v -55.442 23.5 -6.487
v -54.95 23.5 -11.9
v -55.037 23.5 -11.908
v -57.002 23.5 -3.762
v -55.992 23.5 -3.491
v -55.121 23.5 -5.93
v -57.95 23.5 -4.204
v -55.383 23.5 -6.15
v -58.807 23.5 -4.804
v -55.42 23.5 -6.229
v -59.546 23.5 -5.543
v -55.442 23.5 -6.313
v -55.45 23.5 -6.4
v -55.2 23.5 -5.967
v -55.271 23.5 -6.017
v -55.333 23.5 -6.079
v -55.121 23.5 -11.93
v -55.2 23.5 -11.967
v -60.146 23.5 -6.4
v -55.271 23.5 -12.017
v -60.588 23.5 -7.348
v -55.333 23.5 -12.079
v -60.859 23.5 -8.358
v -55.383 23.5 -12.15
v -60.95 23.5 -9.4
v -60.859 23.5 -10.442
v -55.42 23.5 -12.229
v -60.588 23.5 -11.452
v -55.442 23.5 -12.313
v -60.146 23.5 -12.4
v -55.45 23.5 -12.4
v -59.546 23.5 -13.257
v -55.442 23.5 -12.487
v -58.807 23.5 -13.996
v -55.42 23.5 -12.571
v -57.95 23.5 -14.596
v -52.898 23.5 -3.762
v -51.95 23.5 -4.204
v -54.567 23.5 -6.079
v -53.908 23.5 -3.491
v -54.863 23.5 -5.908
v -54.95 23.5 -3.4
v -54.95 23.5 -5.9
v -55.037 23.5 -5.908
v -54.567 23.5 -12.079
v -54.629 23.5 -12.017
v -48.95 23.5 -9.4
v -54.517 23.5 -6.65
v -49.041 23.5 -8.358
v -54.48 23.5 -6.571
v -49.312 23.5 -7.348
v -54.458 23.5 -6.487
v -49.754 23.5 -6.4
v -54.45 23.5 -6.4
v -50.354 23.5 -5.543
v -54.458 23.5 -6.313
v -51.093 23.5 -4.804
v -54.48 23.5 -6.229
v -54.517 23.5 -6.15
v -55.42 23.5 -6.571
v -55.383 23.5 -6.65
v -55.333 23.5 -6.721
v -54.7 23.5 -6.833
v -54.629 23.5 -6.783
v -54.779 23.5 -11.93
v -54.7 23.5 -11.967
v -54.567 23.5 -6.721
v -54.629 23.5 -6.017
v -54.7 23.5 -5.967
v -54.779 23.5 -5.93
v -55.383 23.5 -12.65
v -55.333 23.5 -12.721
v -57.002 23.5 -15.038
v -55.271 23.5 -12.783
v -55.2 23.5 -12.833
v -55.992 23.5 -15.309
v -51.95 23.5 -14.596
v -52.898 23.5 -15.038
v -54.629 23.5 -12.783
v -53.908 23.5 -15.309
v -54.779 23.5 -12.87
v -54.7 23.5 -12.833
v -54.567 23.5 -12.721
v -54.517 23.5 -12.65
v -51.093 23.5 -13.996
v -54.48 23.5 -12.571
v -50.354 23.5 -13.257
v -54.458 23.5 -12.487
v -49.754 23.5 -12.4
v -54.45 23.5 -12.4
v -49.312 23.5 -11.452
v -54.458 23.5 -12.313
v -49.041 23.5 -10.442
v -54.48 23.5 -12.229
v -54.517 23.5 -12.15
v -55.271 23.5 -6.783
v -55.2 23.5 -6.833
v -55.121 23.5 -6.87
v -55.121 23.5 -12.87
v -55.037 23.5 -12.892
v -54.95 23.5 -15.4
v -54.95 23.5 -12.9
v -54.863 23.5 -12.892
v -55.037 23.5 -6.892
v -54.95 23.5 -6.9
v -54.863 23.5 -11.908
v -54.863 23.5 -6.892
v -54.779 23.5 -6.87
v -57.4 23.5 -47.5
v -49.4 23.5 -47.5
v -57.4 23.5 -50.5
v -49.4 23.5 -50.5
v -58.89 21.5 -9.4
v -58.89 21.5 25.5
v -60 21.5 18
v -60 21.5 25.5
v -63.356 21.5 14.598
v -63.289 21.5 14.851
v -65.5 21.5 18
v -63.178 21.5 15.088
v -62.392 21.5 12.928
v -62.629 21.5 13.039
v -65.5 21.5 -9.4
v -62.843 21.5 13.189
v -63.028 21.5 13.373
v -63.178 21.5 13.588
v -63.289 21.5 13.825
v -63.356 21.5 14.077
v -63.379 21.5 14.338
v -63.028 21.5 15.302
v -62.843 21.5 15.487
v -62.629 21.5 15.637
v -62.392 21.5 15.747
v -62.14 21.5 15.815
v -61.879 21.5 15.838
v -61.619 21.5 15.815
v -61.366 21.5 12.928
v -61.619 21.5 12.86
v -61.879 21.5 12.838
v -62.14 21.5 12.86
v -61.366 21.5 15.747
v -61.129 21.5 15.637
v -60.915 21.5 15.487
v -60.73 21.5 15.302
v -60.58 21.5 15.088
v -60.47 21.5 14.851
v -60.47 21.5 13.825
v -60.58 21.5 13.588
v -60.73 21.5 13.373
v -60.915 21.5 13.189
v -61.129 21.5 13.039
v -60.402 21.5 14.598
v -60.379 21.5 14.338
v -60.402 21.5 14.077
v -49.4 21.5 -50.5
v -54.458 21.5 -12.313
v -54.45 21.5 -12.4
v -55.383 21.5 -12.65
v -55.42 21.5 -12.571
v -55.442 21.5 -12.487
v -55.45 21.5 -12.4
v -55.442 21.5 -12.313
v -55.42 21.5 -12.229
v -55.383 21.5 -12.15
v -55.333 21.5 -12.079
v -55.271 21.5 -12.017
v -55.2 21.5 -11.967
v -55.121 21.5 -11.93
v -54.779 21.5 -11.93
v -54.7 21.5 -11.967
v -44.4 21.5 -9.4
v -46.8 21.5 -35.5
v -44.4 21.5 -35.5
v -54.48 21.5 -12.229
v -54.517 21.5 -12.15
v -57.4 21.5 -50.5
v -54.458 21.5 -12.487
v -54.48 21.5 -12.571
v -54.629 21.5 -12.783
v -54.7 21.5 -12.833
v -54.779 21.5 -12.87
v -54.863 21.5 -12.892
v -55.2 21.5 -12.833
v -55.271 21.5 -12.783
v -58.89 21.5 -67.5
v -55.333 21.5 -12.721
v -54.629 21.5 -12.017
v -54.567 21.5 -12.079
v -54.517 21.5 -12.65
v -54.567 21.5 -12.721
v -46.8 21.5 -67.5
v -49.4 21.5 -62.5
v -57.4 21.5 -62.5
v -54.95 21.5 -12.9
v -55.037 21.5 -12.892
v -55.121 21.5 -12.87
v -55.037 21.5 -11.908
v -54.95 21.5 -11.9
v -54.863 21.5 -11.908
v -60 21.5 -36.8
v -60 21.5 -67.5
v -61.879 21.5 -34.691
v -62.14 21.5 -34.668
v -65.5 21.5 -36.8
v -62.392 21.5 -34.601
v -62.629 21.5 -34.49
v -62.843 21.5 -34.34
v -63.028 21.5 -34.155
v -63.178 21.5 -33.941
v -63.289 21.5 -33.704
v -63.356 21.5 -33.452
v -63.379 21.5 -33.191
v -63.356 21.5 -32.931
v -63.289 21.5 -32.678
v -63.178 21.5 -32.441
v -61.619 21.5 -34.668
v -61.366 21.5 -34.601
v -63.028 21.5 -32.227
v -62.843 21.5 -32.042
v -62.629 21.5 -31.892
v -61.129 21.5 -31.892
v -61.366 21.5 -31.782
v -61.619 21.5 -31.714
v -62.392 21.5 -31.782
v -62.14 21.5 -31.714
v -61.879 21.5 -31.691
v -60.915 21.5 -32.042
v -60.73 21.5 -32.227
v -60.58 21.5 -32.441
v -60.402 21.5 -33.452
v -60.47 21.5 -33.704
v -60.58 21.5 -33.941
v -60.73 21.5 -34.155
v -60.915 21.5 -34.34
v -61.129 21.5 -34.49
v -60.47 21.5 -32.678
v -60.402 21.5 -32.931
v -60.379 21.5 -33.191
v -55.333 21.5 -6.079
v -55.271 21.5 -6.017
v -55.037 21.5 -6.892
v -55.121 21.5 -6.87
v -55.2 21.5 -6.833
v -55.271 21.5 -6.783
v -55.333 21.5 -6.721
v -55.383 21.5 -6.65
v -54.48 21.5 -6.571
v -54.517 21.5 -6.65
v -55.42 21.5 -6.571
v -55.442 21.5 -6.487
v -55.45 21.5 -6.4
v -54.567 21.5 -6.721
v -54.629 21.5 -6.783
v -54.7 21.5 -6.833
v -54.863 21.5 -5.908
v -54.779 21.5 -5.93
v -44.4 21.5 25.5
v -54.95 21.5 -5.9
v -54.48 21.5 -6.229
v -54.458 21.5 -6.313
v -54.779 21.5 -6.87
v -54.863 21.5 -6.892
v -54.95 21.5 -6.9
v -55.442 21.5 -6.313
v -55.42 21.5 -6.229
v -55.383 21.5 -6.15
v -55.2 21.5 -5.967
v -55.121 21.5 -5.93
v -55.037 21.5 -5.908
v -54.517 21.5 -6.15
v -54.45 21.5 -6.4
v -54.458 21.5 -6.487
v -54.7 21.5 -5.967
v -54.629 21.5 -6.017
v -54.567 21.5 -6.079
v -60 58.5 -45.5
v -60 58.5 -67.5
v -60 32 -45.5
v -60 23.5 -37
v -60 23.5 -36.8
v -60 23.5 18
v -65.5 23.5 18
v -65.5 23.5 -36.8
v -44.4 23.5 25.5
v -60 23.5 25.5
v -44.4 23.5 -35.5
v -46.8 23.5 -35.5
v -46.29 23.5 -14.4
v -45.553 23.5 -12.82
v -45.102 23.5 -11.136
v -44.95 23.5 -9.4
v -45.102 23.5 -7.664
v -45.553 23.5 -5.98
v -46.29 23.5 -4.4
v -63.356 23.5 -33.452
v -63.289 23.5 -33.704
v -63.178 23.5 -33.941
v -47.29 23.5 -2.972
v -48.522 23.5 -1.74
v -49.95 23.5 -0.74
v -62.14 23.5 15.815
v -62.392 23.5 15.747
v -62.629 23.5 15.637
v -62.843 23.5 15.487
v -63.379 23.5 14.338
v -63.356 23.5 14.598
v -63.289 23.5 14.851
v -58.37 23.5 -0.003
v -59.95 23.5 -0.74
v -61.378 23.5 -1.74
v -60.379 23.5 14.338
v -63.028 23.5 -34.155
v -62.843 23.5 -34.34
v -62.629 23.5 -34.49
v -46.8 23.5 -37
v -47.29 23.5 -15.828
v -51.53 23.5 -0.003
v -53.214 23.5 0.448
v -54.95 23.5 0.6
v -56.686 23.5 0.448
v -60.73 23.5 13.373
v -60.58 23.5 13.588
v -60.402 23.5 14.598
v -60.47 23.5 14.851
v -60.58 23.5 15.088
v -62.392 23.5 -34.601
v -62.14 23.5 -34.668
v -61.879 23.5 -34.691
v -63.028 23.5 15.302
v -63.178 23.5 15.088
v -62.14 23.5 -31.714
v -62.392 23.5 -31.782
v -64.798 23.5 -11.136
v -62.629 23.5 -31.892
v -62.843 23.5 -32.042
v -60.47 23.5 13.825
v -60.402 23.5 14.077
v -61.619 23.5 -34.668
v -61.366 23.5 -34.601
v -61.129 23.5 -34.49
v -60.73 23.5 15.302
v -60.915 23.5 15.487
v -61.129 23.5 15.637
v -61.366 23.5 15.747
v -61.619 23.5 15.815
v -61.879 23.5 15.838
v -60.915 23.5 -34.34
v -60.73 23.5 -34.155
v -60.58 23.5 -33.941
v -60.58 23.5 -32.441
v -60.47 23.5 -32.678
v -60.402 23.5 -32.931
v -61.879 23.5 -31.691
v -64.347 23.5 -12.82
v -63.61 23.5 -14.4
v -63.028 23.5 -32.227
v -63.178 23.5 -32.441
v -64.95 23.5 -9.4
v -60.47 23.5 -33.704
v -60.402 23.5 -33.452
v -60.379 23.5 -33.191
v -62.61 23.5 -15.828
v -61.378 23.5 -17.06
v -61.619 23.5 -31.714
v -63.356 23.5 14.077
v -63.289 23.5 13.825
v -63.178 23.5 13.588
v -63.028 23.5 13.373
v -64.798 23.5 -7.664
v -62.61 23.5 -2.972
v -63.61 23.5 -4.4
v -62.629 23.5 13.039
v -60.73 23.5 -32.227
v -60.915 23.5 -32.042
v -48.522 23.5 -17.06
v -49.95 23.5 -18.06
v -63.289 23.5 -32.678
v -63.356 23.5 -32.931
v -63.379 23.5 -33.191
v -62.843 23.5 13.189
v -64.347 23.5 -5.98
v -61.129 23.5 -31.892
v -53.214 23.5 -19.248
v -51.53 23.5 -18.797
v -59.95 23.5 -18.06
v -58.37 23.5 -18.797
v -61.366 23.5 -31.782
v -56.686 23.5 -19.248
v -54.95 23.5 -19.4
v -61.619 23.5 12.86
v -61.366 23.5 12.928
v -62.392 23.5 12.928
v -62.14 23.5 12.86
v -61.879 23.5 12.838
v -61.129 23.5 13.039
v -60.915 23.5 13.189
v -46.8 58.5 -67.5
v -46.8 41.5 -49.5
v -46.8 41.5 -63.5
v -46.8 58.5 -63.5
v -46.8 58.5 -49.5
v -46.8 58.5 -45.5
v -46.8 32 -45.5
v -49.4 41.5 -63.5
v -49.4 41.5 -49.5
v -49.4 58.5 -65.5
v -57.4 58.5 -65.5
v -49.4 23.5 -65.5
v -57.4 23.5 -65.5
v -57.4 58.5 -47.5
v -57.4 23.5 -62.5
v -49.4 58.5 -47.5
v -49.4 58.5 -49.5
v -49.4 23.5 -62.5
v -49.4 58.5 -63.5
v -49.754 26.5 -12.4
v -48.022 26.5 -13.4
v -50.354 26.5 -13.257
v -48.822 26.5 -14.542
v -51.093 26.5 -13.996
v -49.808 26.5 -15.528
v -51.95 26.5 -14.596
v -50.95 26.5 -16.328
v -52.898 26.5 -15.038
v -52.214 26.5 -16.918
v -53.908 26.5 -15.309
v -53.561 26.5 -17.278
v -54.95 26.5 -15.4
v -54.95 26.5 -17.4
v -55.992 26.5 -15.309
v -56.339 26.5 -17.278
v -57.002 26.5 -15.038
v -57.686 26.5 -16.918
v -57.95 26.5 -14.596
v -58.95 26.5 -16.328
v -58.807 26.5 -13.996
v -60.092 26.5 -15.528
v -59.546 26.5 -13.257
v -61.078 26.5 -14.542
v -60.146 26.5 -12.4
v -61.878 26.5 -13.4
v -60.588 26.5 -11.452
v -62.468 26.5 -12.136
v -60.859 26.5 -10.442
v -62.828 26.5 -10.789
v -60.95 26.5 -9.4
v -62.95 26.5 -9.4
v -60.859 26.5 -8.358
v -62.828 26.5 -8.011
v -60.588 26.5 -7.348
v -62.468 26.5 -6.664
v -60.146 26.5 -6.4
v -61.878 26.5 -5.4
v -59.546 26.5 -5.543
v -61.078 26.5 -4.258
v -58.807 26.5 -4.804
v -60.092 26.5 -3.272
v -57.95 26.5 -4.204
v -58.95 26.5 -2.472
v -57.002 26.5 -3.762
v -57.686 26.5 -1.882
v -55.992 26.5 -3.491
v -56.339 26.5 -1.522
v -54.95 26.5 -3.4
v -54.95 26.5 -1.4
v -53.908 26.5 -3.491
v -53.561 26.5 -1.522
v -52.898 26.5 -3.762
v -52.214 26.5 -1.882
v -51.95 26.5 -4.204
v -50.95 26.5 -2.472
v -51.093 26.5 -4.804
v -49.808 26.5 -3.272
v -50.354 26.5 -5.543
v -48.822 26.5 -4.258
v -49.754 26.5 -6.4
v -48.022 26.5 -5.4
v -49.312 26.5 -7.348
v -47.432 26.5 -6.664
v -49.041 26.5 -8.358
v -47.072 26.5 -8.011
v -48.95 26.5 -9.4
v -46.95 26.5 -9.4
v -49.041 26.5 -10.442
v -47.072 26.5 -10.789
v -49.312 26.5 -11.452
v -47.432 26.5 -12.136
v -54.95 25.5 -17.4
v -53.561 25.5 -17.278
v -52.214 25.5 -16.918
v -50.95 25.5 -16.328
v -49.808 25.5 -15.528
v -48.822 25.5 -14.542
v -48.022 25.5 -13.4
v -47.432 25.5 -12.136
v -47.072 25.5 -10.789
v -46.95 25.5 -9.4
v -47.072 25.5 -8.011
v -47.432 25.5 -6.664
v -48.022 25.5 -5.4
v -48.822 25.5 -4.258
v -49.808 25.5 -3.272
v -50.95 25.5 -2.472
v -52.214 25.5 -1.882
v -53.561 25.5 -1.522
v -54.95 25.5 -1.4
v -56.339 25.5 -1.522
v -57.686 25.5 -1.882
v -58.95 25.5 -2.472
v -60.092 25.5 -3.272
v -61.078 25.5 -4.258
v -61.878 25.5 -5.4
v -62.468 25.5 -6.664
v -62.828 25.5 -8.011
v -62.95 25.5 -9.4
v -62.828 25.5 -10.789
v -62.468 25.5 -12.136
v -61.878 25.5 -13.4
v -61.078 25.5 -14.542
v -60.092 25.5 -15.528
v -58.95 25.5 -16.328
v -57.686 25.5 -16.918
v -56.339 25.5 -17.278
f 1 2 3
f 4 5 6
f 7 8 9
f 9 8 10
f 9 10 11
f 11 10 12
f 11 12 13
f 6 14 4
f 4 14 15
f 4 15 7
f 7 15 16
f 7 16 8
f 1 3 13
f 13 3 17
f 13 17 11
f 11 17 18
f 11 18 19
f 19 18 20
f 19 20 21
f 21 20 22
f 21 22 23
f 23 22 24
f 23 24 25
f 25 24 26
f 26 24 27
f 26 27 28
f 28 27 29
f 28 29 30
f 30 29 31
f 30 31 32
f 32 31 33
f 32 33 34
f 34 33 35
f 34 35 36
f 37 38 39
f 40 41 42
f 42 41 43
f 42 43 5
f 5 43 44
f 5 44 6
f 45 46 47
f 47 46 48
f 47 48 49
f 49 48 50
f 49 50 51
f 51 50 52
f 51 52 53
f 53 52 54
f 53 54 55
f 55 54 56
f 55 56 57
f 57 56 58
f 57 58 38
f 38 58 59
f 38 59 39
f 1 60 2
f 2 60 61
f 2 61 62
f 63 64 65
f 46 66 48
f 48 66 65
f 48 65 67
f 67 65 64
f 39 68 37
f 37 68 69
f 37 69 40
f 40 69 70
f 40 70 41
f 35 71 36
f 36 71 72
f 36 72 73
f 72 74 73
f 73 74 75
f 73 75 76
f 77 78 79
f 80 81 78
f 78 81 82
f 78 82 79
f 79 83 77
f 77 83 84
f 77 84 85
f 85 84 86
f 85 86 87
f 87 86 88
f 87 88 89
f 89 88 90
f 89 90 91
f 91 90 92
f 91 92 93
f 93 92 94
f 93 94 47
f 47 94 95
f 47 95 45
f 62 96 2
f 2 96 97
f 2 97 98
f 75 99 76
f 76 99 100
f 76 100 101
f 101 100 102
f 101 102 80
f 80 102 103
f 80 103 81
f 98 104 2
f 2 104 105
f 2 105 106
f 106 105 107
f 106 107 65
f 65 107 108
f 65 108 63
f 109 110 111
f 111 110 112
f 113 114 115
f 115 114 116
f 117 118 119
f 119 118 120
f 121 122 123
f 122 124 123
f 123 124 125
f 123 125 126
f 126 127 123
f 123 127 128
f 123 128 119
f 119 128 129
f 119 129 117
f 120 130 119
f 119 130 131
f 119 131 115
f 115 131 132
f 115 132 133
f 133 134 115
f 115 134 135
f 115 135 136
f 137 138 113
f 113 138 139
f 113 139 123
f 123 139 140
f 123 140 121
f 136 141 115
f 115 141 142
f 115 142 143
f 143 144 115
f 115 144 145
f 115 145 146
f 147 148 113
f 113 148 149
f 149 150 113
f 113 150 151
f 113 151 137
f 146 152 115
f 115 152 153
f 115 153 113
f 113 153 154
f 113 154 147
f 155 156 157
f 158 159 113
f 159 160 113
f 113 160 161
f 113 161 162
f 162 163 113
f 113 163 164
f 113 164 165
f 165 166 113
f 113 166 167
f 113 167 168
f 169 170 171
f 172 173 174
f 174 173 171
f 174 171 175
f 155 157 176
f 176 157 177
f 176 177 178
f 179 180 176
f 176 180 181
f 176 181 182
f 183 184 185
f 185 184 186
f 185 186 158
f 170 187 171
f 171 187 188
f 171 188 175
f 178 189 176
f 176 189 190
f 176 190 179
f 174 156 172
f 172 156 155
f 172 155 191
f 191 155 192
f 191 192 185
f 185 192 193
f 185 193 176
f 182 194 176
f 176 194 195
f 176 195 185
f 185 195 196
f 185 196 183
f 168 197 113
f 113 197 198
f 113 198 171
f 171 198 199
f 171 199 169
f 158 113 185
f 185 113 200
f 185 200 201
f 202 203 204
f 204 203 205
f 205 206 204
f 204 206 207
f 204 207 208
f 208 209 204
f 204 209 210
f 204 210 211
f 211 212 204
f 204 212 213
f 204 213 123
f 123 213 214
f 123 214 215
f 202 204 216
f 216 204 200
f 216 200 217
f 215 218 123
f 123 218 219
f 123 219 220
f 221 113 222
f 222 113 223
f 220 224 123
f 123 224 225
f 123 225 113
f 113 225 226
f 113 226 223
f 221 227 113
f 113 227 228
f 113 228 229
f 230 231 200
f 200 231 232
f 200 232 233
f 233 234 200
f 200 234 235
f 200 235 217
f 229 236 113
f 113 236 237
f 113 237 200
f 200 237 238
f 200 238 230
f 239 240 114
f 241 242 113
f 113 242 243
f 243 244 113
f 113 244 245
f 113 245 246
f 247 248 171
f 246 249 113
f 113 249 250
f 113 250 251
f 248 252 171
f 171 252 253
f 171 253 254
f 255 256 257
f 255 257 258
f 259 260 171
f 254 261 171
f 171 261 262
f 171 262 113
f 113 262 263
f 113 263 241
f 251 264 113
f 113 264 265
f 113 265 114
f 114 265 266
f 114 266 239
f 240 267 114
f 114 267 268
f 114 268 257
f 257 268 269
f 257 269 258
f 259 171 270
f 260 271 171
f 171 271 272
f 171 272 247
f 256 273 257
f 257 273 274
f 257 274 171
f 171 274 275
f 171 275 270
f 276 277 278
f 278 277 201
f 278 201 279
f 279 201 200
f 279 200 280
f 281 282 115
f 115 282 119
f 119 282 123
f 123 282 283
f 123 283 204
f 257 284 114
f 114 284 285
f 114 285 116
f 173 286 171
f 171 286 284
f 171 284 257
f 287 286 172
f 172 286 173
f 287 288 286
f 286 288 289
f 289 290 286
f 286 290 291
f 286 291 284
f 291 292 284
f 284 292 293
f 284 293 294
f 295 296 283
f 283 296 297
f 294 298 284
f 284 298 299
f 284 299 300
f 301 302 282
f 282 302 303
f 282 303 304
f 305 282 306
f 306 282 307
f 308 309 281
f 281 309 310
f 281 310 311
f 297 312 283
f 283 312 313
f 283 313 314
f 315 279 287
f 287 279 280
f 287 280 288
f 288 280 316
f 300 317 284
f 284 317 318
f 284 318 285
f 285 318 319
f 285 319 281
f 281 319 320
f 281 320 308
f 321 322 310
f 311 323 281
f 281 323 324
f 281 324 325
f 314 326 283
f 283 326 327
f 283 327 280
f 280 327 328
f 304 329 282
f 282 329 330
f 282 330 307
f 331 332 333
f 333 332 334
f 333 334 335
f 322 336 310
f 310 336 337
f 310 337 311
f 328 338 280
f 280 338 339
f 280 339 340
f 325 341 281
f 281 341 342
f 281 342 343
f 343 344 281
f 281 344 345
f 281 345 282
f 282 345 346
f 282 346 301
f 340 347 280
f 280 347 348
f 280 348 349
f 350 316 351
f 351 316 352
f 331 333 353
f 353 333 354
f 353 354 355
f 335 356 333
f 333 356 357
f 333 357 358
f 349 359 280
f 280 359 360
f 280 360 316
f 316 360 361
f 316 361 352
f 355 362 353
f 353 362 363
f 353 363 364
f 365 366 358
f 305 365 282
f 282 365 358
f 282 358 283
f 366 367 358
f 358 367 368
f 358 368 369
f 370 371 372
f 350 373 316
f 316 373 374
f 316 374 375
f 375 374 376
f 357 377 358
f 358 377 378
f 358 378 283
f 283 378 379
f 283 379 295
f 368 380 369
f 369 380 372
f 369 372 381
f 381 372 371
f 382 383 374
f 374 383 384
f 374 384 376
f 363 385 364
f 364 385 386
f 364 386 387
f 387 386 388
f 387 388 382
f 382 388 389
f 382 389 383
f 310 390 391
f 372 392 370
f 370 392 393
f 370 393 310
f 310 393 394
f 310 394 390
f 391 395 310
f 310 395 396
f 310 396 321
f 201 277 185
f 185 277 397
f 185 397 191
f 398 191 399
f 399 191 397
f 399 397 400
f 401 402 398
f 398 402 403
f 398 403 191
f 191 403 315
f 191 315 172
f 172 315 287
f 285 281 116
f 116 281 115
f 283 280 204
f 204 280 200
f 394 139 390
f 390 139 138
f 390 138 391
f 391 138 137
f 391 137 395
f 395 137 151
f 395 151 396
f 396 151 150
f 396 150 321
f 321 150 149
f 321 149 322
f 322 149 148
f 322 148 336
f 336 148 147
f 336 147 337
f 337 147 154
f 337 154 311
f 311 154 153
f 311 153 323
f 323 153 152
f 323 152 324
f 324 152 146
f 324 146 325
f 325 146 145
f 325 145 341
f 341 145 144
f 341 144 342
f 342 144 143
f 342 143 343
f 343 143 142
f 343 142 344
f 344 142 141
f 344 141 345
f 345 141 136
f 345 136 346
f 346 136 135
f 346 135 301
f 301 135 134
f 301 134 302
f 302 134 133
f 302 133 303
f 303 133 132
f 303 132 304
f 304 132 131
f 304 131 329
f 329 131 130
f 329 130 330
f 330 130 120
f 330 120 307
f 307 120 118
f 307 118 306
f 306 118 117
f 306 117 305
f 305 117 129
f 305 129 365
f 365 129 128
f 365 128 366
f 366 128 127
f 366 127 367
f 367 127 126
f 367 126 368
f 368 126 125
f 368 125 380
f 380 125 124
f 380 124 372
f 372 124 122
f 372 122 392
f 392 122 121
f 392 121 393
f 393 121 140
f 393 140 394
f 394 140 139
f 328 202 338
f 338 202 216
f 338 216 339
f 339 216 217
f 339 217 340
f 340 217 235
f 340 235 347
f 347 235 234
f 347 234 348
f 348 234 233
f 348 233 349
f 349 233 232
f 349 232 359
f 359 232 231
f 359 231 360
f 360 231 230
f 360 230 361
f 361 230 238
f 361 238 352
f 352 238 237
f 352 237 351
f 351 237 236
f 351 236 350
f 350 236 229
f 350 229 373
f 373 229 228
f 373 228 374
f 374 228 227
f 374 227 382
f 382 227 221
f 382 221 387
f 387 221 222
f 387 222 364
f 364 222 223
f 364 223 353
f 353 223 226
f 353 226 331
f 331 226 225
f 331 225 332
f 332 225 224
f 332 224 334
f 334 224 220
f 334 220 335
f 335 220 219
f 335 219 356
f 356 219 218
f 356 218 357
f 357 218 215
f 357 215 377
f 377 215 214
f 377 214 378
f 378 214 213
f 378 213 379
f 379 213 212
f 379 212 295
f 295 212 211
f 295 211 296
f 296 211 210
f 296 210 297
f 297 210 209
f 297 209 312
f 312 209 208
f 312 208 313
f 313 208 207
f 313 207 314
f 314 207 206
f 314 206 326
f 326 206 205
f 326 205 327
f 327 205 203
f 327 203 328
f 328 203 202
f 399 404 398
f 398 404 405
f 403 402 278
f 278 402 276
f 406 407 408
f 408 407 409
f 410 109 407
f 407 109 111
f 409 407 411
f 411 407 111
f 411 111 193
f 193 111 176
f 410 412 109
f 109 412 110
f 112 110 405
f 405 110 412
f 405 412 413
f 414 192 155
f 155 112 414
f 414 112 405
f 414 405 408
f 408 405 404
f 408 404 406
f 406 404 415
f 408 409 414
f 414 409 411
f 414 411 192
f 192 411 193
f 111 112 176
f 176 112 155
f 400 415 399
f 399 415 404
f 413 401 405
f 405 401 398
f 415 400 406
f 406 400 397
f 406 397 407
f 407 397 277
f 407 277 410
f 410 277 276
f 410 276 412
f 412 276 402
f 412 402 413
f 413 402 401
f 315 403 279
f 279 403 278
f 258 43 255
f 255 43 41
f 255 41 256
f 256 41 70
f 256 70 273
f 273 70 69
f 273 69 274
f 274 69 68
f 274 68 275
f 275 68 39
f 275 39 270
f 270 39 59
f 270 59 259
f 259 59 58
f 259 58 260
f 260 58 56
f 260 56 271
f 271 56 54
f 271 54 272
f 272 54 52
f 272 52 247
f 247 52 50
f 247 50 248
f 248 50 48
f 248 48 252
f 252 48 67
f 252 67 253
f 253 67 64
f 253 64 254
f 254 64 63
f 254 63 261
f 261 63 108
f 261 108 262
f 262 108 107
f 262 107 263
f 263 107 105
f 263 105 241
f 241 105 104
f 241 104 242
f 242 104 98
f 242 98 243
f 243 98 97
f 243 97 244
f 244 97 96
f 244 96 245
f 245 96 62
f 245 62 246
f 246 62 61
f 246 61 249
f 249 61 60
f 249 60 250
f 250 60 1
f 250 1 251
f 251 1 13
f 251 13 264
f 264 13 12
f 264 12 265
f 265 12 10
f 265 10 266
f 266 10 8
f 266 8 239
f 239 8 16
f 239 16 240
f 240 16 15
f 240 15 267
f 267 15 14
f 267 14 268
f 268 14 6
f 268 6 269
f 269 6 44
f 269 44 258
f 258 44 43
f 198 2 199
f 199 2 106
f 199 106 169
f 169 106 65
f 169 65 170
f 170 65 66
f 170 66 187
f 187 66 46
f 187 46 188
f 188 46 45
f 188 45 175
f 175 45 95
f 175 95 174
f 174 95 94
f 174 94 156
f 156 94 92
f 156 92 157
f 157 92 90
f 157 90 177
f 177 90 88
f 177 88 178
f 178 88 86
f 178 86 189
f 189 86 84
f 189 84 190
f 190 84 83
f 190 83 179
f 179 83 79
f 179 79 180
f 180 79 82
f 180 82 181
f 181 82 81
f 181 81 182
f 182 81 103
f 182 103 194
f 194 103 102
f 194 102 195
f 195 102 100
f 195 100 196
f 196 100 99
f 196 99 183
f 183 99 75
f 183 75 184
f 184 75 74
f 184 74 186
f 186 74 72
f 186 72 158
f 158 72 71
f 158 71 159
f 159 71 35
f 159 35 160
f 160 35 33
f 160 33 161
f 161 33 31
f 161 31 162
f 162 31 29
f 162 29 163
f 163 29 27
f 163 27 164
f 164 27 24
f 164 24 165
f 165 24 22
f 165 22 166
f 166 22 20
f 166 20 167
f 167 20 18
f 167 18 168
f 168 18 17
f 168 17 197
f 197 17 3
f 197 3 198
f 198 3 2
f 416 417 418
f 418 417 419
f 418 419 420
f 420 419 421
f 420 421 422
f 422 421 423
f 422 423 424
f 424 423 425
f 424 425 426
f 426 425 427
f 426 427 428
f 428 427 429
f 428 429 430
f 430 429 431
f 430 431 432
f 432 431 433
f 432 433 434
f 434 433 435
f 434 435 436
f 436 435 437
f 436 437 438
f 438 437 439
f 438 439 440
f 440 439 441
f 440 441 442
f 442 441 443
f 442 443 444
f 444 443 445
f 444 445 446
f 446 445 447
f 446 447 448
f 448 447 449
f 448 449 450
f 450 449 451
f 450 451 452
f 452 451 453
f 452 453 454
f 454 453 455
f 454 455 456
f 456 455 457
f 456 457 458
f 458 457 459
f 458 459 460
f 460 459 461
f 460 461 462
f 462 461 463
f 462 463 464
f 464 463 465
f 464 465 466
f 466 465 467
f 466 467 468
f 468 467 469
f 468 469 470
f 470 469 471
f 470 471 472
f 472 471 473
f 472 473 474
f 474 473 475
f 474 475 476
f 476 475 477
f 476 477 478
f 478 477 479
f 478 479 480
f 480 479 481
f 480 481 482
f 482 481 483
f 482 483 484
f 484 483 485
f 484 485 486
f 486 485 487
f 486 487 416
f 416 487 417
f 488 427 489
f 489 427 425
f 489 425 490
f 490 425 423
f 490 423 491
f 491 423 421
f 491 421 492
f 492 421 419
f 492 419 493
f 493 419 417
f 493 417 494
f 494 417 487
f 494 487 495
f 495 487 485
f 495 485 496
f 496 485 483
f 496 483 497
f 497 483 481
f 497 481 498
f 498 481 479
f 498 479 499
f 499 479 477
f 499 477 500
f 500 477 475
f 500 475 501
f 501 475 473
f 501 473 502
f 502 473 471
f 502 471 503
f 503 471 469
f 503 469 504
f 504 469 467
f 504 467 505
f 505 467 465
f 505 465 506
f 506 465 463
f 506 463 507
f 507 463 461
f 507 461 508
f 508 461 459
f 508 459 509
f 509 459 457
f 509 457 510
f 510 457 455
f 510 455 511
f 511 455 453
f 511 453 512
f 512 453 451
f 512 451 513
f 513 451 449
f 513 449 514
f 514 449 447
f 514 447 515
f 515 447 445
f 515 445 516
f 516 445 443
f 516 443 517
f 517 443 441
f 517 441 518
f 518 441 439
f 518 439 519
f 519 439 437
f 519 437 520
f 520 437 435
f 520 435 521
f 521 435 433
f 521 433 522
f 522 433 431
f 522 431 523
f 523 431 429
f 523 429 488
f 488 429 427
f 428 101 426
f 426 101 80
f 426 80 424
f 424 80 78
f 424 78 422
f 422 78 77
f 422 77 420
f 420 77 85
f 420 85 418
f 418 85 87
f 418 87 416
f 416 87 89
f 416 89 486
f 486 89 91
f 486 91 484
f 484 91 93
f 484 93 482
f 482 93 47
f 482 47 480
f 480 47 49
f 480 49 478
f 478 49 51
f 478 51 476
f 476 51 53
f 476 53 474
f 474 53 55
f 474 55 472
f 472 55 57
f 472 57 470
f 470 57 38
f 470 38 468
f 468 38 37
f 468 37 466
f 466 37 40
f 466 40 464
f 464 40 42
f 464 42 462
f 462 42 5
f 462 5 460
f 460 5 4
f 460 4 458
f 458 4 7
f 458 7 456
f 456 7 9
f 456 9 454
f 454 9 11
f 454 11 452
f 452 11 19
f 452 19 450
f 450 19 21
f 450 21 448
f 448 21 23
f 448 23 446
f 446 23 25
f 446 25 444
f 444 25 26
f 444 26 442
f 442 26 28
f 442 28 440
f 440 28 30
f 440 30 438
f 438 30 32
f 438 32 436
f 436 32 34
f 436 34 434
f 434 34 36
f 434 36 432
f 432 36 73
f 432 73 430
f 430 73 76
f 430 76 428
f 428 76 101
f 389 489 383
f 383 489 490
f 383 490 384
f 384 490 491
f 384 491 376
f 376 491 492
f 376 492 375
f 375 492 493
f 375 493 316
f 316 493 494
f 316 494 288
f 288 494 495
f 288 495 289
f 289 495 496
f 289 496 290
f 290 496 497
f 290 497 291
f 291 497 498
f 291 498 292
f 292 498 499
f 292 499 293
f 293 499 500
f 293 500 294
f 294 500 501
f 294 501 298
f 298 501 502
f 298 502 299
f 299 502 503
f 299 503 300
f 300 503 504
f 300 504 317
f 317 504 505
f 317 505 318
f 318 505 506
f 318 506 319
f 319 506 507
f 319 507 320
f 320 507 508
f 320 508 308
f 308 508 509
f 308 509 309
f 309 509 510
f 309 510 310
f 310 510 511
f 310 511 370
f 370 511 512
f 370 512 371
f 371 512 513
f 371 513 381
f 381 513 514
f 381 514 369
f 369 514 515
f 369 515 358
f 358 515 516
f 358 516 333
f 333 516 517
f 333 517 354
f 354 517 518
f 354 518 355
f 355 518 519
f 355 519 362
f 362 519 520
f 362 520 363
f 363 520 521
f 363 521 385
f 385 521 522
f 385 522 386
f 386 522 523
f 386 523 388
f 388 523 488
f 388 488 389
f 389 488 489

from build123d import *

# Parameters (mm, degrees)
BOSS_EXTRUDE1_DEPTH  = 1.5
SKETCH2_W            = 4.8
SKETCH2_H            = 18
BOSS_EXTRUDE2_DEPTH  = 20
SKETCH3_R            = 1.5
CUT_EXTRUDE1_DEPTH   = 20
SKETCH4_R            = 3
SKETCH4_R_2          = 1.5
SKETCH4_W            = 4.828517764
SKETCH4_H            = 3.2
SKETCH4_W_2          = 5.829541735
SKETCH4_H_2          = 5.702554953
SKETCH4_W_3          = 4.58984945
BOSS_EXTRUDE3_DEPTH  = 3.8
SKETCH5_W            = 7.960049614
SKETCH5_H            = 4.589179968
SKETCH5_R            = 1.5
SKETCH5_W_2          = 8.506770289
SKETCH5_H_2          = 5.091999219
SKETCH5_W_3          = 7.172313144
SKETCH5_H_3          = 12.5
SKETCH5_H_4          = 13
BOSS_EXTRUDE4_DEPTH  = 4.25
SKETCH6_W            = 6.917388718
SKETCH6_H            = 7.693263261
SKETCH6_R            = 1.5
SKETCH6_W_2          = 6.017640473
SKETCH6_H_2          = 7.169329529
BOSS_EXTRUDE5_DEPTH  = 12.5
SKETCH7_R            = 1.5
BOSS_EXTRUDE7_DEPTH  = 2
INTERSECT1_DEPTH     = 21.5
SKETCH8_W            = 13.2
SKETCH8_H            = 22
BOSS_EXTRUDE8_DEPTH  = 18
SKETCH9_W            = 8
SKETCH9_H            = 12
CUT_EXTRUDE2_DEPTH   = 26
BOSS_EXTRUDE9_DEPTH  = 17
CHAMFER1_SIZE        = 8.5
SKETCH11_R           = 0.5
CUT_EXTRUDE3_DEPTH   = 17
SKETCH12_R           = 8
SKETCH12_R_2         = 6
BOSS_EXTRUDE10_DEPTH = 3
CHAMFER2_SIZE        = 2


# Read off the part's stored shape, not the designer's step: Intersect1
with BuildPart() as part:
    # Sketch1 → Boss-Extrude1 (new body)
    with BuildSketch(Plane(origin=(0, 0, 0), x_dir=(1, 0, 0), z_dir=(0, 1, 0))):
        Polygon((-60, -67.5), (-60, -72.5), (-52, -72.5), (-52, -67.5), (52, -67.5), (52, -72.5), (60, -72.5), (60, -67.5), (60, 67.5), (-60, 67.5), (-60, 36.8), (-65.5, 36.8), (-65.5, 29.3), (-60, 29.3), (-60, 16.8), (-65.5, 16.8), (-65.5, 7.8), (-65.5, -1.2), (-60, -1.2), (-60, -10.5), (-65.5, -10.5), (-65.5, -18), (-60, -18), align=None)
    extrude(amount=BOSS_EXTRUDE1_DEPTH)

    # Sketch2 → Boss-Extrude2 (add)
    with BuildSketch(Plane(origin=(0, 1.5, 0), x_dir=(1, 0, 0), z_dir=(0, 1, 0))):
        Polygon((-58, 62.8), (-58, 29.3), (-60, 29.3), (-65.5, 29.3), (-65.5, 36.8), (-60, 36.8), (-60, 67.5), (-55.3, 67.5), (-55.3, 65.5), align=None)
        with BuildLine():
            Line((-58, -65.5), (58, -65.5))
            Line((58, -65.5), (58, -25.5))
            Line((58, -25.5), (29.8, -25.5))
            Line((29.8, -25.5), (29.8, -18))
            Line((29.8, -18), (58, -18))
            Line((58, -18), (58, 38.5))
            ThreePointArc((58, 38.5), (57.414213562, 39.914213562), (56, 40.5))
            Line((56, 40.5), (51.8, 40.5))
            ThreePointArc((51.8, 40.5), (50.385786438, 41.085786438), (49.8, 42.5))
            Line((49.8, 42.5), (49.8, 48.75))
            Line((49.8, 48.75), (51.3, 48.75))
            Line((51.3, 48.75), (51.3, 47.25))
            Line((51.3, 47.25), (58, 47.25))
            Line((58, 47.25), (58, 51.25))
            Line((58, 51.25), (60, 51.25))
            Line((60, 51.25), (60, -72.5))
            Line((60, -72.5), (52, -72.5))
            Line((52, -72.5), (52, -67.5))
            Line((52, -67.5), (-52, -67.5))
            Line((-52, -67.5), (-52, -72.5))
            Line((-52, -72.5), (-60, -72.5))
            Line((-60, -72.5), (-60, -52.5))
            Line((-60, -52.5), (-58, -52.5))
            Line((-58, -52.5), (-58, -65.5))
        make_face()
        Polygon((-60, 16.8), (-58, 16.8), (-58, -1.2), (-60, -1.2), (-65.5, -1.2), (-65.5, 16.8), align=None)
        Polygon((-60, -10.5), (-58, -10.5), (-58, -38), (-60, -38), (-60, -18), (-65.5, -18), (-65.5, -10.5), align=None)
        with BuildLine():
            Line((-48.8, 67.5), (-48.8, 65.5))
            Line((-48.8, 65.5), (-46.8, 62.8))
            Line((-46.8, 62.8), (-46.8, 58.5))
            Line((-46.8, 58.5), (-44.8, 58.5))
            Line((-44.8, 58.5), (-37.8, 64.5))
            Line((-37.8, 64.5), (38.8, 64.5))
            Line((38.8, 64.5), (44.8, 58.5))
            Line((44.8, 58.5), (44.8, 46.5))
            Line((44.8, 46.5), (41.3, 46.5))
            Line((41.3, 46.5), (41.3, 42.5))
            Line((41.3, 42.5), (38.85, 42.5))
            Line((38.85, 42.5), (38.85, 40.5))
            Line((38.85, 40.5), (44.8, 40.5))
            ThreePointArc((44.8, 40.5), (46.214213562, 41.085786438), (46.8, 42.5))
            Line((46.8, 42.5), (46.8, 46.5))
            Line((46.8, 46.5), (46.8, 57.25))
            Line((46.8, 57.25), (51.3, 57.25))
            Line((51.3, 57.25), (51.3, 58.75))
            Line((51.3, 58.75), (58, 58.75))
            Line((58, 58.75), (58, 54.75))
            Line((58, 54.75), (60, 54.75))
            Line((60, 54.75), (60, 67.5))
            Line((60, 67.5), (-48.8, 67.5))
        make_face()
        Polygon((-46.8, 46.5), (-39.5, 46.5), (-39.5, 42.5), (-37.05, 42.5), (-37.05, 40.5), (-46.8, 40.5), align=None)
        Polygon((-33.55, 42.5), (-33.55, 40.5), (-18.65, 40.5), (-18.65, 42.5), (-21.1, 42.5), (-21.1, 46.5), (-31.1, 46.5), (-31.1, 42.5), align=None)
        Polygon((-15.55, 40.5), (-0.65, 40.5), (-0.65, 42.5), (-3.1, 42.5), (-3.1, 46.5), (-13.1, 46.5), (-13.1, 42.5), (-15.55, 42.5), align=None)
        Polygon((2.45, 40.5), (17.35, 40.5), (17.35, 42.5), (14.9, 42.5), (14.9, 46.5), (4.9, 46.5), (4.9, 42.5), (2.45, 42.5), align=None)
        Polygon((20.45, 40.5), (35.35, 40.5), (35.35, 42.5), (32.9, 42.5), (32.9, 46.5), (22.9, 46.5), (22.9, 42.5), (20.45, 42.5), align=None)
        Polygon((-46.8, 35.5), (-49.2, 35.5), (-49.2, 29.3), (-44.4, 29.3), (-44.4, 35.5), align=None)
        with Locations((-46.8, 7.8)):
            Rectangle(SKETCH2_W, SKETCH2_H)
        Polygon((-49.2, -10.5), (-44.4, -10.5), (-44.4, -18), (-16.9, -18), (-16.9, -25.5), (-46.4, -25.5), (-46.4, -19.9), (-49.2, -14), align=None)
    extrude(amount=BOSS_EXTRUDE2_DEPTH)

    # Sketch3 → Cut-Extrude1 (cut)
    with BuildSketch(Plane(origin=(0, 21.5, 0), x_dir=(1, 0, 0), z_dir=(0, 1, 0))):
        with Locations(Location((52.774715074, 63.354517547, 0), (0, 0, 270))):
            Circle(SKETCH3_R)
        with Locations(Location((-43.84271688, 64.854517547, 0), (0, 0, 270))):
            Circle(SKETCH3_R)
        with Locations(Location((-61.879270776, 33.191143968, 0), (0, 0, 270))):
            Circle(SKETCH3_R)
        with Locations(Location((-61.879270776, -14.337618299, 0), (0, 0, 270))):
            Circle(SKETCH3_R)
        with Locations(Location((54.274715074, 43.945098524, 0), (0, 0, 270))):
            Circle(SKETCH3_R)
        with Locations(Location((-21.029637868, -21.862387391, 0), (0, 0, 270))):
            Circle(SKETCH3_R)
        with Locations(Location((34.3, -21.75, 0), (0, 0, 270))):
            Circle(SKETCH3_R)
        with Locations(Location((-56, -69, 0), (0, 0, 270))):
            Circle(SKETCH3_R)
        with Locations(Location((56, -69, 0), (0, 0, 270))):
            Circle(SKETCH3_R)
    extrude(amount=-CUT_EXTRUDE1_DEPTH, mode=Mode.SUBTRACT)

    # Sketch4 → Boss-Extrude3 (add)
    # profile 1 of 5: a face of its own
    with BuildSketch(Plane(origin=(0, 1.5, 0), x_dir=(1, 0, 0), z_dir=(0, 1, 0))):
        with Locations(Location((21.544764921, -8.320497528, 0), (0, 0, 90))):
            Circle(SKETCH4_R)
        with Locations(Location((21.544764921, -8.320497528, 0), (0, 0, 90))):
            Circle(SKETCH4_R_2, mode=Mode.SUBTRACT)
    # profile 2 of 5: a face of its own
    with BuildSketch(Plane(origin=(0, 1.5, 0), x_dir=(1, 0, 0), z_dir=(0, 1, 0))):
        with Locations(Location((21.544764921, 19.479502472, 0), (0, 0, 90))):
            Circle(SKETCH4_R)
        with Locations(Location((21.544764921, 19.479502472, 0), (0, 0, 90))):
            Circle(SKETCH4_R_2, mode=Mode.SUBTRACT)
    # profile 3 of 5: a face of its own
    with BuildSketch(Plane(origin=(0, 1.5, 0), x_dir=(1, 0, 0), z_dir=(0, 1, 0))):
        with Locations((-29.2, 33.9)):
            Rectangle(SKETCH4_W, SKETCH4_H)
        with Locations(Location((-29.2, 33.9, 0), (0, 0, 90))):
            Circle(SKETCH4_R_2, mode=Mode.SUBTRACT)
    # profile 4 of 5: a face of its own
    with BuildSketch(Plane(origin=(0, 1.5, 0), x_dir=(1, 0, 0), z_dir=(0, 1, 0))):
        with Locations((-30.25253813, -15.148722524)):
            Rectangle(SKETCH4_W_2, SKETCH4_H_2)
        with Locations(Location((-30.3, -14.4, 0), (0, 0, 90))):
            Circle(SKETCH4_R_2, mode=Mode.SUBTRACT)
    # profile 5 of 5: a face of its own
    with BuildSketch(Plane(origin=(0, 1.5, 0), x_dir=(1, 0, 0), z_dir=(0, 1, 0))):
        with Locations((51.718864017, -15.148722524)):
            Rectangle(SKETCH4_W_3, SKETCH4_H_2)
        with Locations(Location((51.8, -14.4, 0), (0, 0, 90))):
            Circle(SKETCH4_R_2, mode=Mode.SUBTRACT)
    extrude(amount=BOSS_EXTRUDE3_DEPTH)

    # Sketch5 → Boss-Extrude4 (add)
    # profile 1 of 4: a face of its own
    with BuildSketch(Plane(origin=(0, 1.5, 0), x_dir=(1, 0, 0), z_dir=(0, 1, 0))):
        with Locations((-54.019975193, -35.705410016)):
            Rectangle(SKETCH5_W, SKETCH5_H)
        with Locations(Location((-52.773553759, -35.8, 0), (0, 0, 270))):
            Circle(SKETCH5_R, mode=Mode.SUBTRACT)
    # profile 2 of 4: a face of its own
    with BuildSketch(Plane(origin=(0, 1.5, 0), x_dir=(1, 0, 0), z_dir=(0, 1, 0))):
        with Locations((-53.746614856, -55.04599961)):
            Rectangle(SKETCH5_W_2, SKETCH5_H_2)
        with Locations(Location((-52.773553759, -54.7, 0), (0, 0, 270))):
            Circle(SKETCH5_R, mode=Mode.SUBTRACT)
    # profile 3 of 4: a face of its own
    with BuildSketch(Plane(origin=(0, 1.5, 0), x_dir=(1, 0, 0), z_dir=(0, 1, 0))):
        with Locations((-27.40354529, -31.75)):
            Rectangle(SKETCH5_W_3, SKETCH5_H_3)
        with Locations(Location((-27.173553759, -35.8, 0), (0, 0, 270))):
            Circle(SKETCH5_R, mode=Mode.SUBTRACT)
    # profile 4 of 4: a face of its own
    with BuildSketch(Plane(origin=(0, 1.5, 0), x_dir=(1, 0, 0), z_dir=(0, 1, 0))):
        with Locations((-27.40354529, -59)):
            Rectangle(SKETCH5_W_3, SKETCH5_H_4)
        with Locations(Location((-27.173553759, -54.7, 0), (0, 0, 270))):
            Circle(SKETCH5_R, mode=Mode.SUBTRACT)
    extrude(amount=BOSS_EXTRUDE4_DEPTH)

    # Sketch6 → Boss-Extrude5 (add)
    # profile 1 of 4: a face of its own
    with BuildSketch(Plane(origin=(0, 1.5, 0), x_dir=(1, 0, 0), z_dir=(0, 1, 0))):
        with Locations((-20.358694359, -29.346631631)):
            Rectangle(SKETCH6_W, SKETCH6_H)
        with Locations(Location((-19.26, -30.5, 0), (0, 0, 270))):
            Circle(SKETCH6_R, mode=Mode.SUBTRACT)
    # profile 2 of 4: a face of its own
    with BuildSketch(Plane(origin=(0, 1.5, 0), x_dir=(1, 0, 0), z_dir=(0, 1, 0))):
        with Locations((54.991179763, -29.346631631)):
            Rectangle(SKETCH6_W_2, SKETCH6_H)
        with Locations(Location((55.14, -30.5, 0), (0, 0, 270))):
            Circle(SKETCH6_R, mode=Mode.SUBTRACT)
    # profile 3 of 4: a face of its own
    with BuildSketch(Plane(origin=(0, 1.5, 0), x_dir=(1, 0, 0), z_dir=(0, 1, 0))):
        with Locations((54.991179763, -61.915335236)):
            Rectangle(SKETCH6_W_2, SKETCH6_H_2)
        with Locations(Location((55.14, -61.1, 0), (0, 0, 270))):
            Circle(SKETCH6_R, mode=Mode.SUBTRACT)
    # profile 4 of 4: a face of its own
    with BuildSketch(Plane(origin=(0, 1.5, 0), x_dir=(1, 0, 0), z_dir=(0, 1, 0))):
        with Locations((-20.358694359, -61.915335236)):
            Rectangle(SKETCH6_W, SKETCH6_H_2)
        with Locations(Location((-19.26, -61.1, 0), (0, 0, 270))):
            Circle(SKETCH6_R, mode=Mode.SUBTRACT)
    extrude(amount=BOSS_EXTRUDE5_DEPTH)

    # Intersect1 outline → Intersect1 (cut)
    with BuildSketch(Plane(origin=(0, 0, 0), x_dir=(1, 0, 0), z_dir=(0, 1, 0))):
        Polygon((-60, -72.5), (-52, -72.5), (-52, -67.5), (52, -67.5), (52, -72.5), (60, -72.5), (60, 67.5), (-60, 67.5), (-60, 36.8), (-65.5, 36.8), (-65.5, 29.3), (-60, 29.3), (-60, 16.8), (-65.5, 16.8), (-65.5, -1.2), (-60, -1.2), (-60, -10.5), (-65.5, -10.5), (-65.5, -18), (-60, -18), align=None)
    extrude(amount=INTERSECT1_DEPTH, mode=Mode.SUBTRACT)


with BuildPart() as body_2:
    # Sketch7 → Boss-Extrude7 (new body)
    with BuildSketch(Plane(origin=(0, 21.5, 0), x_dir=(1, 0, 0), z_dir=(0, 1, 0))):
        Polygon((-60, 67.5), (-60, 36.8), (-65.5, 36.8), (-65.5, -18), (-60, -18), (-60, -25.5), (-46.4, -25.5), (-44.4, -25.5), (-44.4, -10.5), (-44.4, 35.5), (-46.8, 35.5), (-46.8, 62.8), (-46.8, 67.5), align=None)
        with Locations(Location((-61.879270776, -14.337618299, 0), (0, 0, 270))):
            Circle(SKETCH7_R, mode=Mode.SUBTRACT)
        with Locations(Location((-61.879270776, 33.191143968, 0), (0, 0, 270))):
            Circle(SKETCH7_R, mode=Mode.SUBTRACT)
    extrude(amount=BOSS_EXTRUDE7_DEPTH)

    # Sketch8 → Boss-Extrude8 (add)
    with BuildSketch(Plane(origin=(0, 23.5, 0), x_dir=(1, 0, 0), z_dir=(0, 1, 0))):
        with Locations((-53.4, 56.5)):
            Rectangle(SKETCH8_W, SKETCH8_H)
        Polygon((-53.4, 65.5), (-57.4, 65.5), (-57.4, 47.5), (-53.4, 47.5), (-49.4, 47.5), (-49.4, 65.5), align=None, mode=Mode.SUBTRACT)
    extrude(amount=BOSS_EXTRUDE8_DEPTH)

    # Sketch9 → Cut-Extrude2 (cut)
    with BuildSketch(Plane(origin=(0, 23.5, 0), x_dir=(1, 0, 0), z_dir=(0, 1, 0))):
        with Locations((-53.4, 56.5)):
            Rectangle(SKETCH9_W, SKETCH9_H)
    extrude(amount=-CUT_EXTRUDE2_DEPTH, mode=Mode.SUBTRACT)

    # Sketch10 → Boss-Extrude9 (add)
    with BuildSketch(Plane(origin=(0, 41.5, 0), x_dir=(1, 0, 0), z_dir=(0, 1, 0))):
        Polygon((-49.4, 63.5), (-46.8, 63.5), (-46.8, 67.5), (-60, 67.5), (-60, 45.5), (-46.8, 45.5), (-46.8, 49.5), (-49.4, 49.5), (-49.4, 47.5), (-57.4, 47.5), (-57.4, 65.5), (-49.4, 65.5), align=None)
    extrude(amount=BOSS_EXTRUDE9_DEPTH)

    # Chamfer1
    chamfer1_edges = [body_2.edges().sort_by_distance(p)[0] for p in [
        (-53.4, 23.5, -45.5),
    ]]
    chamfer(chamfer1_edges, length=CHAMFER1_SIZE)

    # Sketch11 → Cut-Extrude3 (cut)
    with BuildSketch(Plane(origin=(0, 23.5, 0), x_dir=(1, 0, 0), z_dir=(0, 1, 0))):
        with Locations(Location((-54.95, 12.4, 0), (0, 0, 270))):
            Circle(SKETCH11_R)
        with Locations(Location((-54.95, 6.4, 0), (0, 0, 90))):
            Circle(SKETCH11_R)
    extrude(amount=-CUT_EXTRUDE3_DEPTH, mode=Mode.SUBTRACT)

    # Sketch12 → Boss-Extrude10 (add)
    with BuildSketch(Plane(origin=(0, 23.5, 0), x_dir=(1, 0, 0), z_dir=(0, 1, 0))):
        with Locations(Location((-54.95, 9.4, 0), (0, 0, 270))):
            Circle(SKETCH12_R)
        with Locations(Location((-54.95, 9.4, 0), (0, 0, 270))):
            Circle(SKETCH12_R_2, mode=Mode.SUBTRACT)
    extrude(amount=BOSS_EXTRUDE10_DEPTH)

    # Chamfer2
    chamfer2_edges = [body_2.edges().sort_by_distance(p)[0] for p in [
        (-54.95, 23.5, -17.4),
    ]]
    chamfer(chamfer2_edges, length=CHAMFER2_SIZE)


solid = body_2.part
